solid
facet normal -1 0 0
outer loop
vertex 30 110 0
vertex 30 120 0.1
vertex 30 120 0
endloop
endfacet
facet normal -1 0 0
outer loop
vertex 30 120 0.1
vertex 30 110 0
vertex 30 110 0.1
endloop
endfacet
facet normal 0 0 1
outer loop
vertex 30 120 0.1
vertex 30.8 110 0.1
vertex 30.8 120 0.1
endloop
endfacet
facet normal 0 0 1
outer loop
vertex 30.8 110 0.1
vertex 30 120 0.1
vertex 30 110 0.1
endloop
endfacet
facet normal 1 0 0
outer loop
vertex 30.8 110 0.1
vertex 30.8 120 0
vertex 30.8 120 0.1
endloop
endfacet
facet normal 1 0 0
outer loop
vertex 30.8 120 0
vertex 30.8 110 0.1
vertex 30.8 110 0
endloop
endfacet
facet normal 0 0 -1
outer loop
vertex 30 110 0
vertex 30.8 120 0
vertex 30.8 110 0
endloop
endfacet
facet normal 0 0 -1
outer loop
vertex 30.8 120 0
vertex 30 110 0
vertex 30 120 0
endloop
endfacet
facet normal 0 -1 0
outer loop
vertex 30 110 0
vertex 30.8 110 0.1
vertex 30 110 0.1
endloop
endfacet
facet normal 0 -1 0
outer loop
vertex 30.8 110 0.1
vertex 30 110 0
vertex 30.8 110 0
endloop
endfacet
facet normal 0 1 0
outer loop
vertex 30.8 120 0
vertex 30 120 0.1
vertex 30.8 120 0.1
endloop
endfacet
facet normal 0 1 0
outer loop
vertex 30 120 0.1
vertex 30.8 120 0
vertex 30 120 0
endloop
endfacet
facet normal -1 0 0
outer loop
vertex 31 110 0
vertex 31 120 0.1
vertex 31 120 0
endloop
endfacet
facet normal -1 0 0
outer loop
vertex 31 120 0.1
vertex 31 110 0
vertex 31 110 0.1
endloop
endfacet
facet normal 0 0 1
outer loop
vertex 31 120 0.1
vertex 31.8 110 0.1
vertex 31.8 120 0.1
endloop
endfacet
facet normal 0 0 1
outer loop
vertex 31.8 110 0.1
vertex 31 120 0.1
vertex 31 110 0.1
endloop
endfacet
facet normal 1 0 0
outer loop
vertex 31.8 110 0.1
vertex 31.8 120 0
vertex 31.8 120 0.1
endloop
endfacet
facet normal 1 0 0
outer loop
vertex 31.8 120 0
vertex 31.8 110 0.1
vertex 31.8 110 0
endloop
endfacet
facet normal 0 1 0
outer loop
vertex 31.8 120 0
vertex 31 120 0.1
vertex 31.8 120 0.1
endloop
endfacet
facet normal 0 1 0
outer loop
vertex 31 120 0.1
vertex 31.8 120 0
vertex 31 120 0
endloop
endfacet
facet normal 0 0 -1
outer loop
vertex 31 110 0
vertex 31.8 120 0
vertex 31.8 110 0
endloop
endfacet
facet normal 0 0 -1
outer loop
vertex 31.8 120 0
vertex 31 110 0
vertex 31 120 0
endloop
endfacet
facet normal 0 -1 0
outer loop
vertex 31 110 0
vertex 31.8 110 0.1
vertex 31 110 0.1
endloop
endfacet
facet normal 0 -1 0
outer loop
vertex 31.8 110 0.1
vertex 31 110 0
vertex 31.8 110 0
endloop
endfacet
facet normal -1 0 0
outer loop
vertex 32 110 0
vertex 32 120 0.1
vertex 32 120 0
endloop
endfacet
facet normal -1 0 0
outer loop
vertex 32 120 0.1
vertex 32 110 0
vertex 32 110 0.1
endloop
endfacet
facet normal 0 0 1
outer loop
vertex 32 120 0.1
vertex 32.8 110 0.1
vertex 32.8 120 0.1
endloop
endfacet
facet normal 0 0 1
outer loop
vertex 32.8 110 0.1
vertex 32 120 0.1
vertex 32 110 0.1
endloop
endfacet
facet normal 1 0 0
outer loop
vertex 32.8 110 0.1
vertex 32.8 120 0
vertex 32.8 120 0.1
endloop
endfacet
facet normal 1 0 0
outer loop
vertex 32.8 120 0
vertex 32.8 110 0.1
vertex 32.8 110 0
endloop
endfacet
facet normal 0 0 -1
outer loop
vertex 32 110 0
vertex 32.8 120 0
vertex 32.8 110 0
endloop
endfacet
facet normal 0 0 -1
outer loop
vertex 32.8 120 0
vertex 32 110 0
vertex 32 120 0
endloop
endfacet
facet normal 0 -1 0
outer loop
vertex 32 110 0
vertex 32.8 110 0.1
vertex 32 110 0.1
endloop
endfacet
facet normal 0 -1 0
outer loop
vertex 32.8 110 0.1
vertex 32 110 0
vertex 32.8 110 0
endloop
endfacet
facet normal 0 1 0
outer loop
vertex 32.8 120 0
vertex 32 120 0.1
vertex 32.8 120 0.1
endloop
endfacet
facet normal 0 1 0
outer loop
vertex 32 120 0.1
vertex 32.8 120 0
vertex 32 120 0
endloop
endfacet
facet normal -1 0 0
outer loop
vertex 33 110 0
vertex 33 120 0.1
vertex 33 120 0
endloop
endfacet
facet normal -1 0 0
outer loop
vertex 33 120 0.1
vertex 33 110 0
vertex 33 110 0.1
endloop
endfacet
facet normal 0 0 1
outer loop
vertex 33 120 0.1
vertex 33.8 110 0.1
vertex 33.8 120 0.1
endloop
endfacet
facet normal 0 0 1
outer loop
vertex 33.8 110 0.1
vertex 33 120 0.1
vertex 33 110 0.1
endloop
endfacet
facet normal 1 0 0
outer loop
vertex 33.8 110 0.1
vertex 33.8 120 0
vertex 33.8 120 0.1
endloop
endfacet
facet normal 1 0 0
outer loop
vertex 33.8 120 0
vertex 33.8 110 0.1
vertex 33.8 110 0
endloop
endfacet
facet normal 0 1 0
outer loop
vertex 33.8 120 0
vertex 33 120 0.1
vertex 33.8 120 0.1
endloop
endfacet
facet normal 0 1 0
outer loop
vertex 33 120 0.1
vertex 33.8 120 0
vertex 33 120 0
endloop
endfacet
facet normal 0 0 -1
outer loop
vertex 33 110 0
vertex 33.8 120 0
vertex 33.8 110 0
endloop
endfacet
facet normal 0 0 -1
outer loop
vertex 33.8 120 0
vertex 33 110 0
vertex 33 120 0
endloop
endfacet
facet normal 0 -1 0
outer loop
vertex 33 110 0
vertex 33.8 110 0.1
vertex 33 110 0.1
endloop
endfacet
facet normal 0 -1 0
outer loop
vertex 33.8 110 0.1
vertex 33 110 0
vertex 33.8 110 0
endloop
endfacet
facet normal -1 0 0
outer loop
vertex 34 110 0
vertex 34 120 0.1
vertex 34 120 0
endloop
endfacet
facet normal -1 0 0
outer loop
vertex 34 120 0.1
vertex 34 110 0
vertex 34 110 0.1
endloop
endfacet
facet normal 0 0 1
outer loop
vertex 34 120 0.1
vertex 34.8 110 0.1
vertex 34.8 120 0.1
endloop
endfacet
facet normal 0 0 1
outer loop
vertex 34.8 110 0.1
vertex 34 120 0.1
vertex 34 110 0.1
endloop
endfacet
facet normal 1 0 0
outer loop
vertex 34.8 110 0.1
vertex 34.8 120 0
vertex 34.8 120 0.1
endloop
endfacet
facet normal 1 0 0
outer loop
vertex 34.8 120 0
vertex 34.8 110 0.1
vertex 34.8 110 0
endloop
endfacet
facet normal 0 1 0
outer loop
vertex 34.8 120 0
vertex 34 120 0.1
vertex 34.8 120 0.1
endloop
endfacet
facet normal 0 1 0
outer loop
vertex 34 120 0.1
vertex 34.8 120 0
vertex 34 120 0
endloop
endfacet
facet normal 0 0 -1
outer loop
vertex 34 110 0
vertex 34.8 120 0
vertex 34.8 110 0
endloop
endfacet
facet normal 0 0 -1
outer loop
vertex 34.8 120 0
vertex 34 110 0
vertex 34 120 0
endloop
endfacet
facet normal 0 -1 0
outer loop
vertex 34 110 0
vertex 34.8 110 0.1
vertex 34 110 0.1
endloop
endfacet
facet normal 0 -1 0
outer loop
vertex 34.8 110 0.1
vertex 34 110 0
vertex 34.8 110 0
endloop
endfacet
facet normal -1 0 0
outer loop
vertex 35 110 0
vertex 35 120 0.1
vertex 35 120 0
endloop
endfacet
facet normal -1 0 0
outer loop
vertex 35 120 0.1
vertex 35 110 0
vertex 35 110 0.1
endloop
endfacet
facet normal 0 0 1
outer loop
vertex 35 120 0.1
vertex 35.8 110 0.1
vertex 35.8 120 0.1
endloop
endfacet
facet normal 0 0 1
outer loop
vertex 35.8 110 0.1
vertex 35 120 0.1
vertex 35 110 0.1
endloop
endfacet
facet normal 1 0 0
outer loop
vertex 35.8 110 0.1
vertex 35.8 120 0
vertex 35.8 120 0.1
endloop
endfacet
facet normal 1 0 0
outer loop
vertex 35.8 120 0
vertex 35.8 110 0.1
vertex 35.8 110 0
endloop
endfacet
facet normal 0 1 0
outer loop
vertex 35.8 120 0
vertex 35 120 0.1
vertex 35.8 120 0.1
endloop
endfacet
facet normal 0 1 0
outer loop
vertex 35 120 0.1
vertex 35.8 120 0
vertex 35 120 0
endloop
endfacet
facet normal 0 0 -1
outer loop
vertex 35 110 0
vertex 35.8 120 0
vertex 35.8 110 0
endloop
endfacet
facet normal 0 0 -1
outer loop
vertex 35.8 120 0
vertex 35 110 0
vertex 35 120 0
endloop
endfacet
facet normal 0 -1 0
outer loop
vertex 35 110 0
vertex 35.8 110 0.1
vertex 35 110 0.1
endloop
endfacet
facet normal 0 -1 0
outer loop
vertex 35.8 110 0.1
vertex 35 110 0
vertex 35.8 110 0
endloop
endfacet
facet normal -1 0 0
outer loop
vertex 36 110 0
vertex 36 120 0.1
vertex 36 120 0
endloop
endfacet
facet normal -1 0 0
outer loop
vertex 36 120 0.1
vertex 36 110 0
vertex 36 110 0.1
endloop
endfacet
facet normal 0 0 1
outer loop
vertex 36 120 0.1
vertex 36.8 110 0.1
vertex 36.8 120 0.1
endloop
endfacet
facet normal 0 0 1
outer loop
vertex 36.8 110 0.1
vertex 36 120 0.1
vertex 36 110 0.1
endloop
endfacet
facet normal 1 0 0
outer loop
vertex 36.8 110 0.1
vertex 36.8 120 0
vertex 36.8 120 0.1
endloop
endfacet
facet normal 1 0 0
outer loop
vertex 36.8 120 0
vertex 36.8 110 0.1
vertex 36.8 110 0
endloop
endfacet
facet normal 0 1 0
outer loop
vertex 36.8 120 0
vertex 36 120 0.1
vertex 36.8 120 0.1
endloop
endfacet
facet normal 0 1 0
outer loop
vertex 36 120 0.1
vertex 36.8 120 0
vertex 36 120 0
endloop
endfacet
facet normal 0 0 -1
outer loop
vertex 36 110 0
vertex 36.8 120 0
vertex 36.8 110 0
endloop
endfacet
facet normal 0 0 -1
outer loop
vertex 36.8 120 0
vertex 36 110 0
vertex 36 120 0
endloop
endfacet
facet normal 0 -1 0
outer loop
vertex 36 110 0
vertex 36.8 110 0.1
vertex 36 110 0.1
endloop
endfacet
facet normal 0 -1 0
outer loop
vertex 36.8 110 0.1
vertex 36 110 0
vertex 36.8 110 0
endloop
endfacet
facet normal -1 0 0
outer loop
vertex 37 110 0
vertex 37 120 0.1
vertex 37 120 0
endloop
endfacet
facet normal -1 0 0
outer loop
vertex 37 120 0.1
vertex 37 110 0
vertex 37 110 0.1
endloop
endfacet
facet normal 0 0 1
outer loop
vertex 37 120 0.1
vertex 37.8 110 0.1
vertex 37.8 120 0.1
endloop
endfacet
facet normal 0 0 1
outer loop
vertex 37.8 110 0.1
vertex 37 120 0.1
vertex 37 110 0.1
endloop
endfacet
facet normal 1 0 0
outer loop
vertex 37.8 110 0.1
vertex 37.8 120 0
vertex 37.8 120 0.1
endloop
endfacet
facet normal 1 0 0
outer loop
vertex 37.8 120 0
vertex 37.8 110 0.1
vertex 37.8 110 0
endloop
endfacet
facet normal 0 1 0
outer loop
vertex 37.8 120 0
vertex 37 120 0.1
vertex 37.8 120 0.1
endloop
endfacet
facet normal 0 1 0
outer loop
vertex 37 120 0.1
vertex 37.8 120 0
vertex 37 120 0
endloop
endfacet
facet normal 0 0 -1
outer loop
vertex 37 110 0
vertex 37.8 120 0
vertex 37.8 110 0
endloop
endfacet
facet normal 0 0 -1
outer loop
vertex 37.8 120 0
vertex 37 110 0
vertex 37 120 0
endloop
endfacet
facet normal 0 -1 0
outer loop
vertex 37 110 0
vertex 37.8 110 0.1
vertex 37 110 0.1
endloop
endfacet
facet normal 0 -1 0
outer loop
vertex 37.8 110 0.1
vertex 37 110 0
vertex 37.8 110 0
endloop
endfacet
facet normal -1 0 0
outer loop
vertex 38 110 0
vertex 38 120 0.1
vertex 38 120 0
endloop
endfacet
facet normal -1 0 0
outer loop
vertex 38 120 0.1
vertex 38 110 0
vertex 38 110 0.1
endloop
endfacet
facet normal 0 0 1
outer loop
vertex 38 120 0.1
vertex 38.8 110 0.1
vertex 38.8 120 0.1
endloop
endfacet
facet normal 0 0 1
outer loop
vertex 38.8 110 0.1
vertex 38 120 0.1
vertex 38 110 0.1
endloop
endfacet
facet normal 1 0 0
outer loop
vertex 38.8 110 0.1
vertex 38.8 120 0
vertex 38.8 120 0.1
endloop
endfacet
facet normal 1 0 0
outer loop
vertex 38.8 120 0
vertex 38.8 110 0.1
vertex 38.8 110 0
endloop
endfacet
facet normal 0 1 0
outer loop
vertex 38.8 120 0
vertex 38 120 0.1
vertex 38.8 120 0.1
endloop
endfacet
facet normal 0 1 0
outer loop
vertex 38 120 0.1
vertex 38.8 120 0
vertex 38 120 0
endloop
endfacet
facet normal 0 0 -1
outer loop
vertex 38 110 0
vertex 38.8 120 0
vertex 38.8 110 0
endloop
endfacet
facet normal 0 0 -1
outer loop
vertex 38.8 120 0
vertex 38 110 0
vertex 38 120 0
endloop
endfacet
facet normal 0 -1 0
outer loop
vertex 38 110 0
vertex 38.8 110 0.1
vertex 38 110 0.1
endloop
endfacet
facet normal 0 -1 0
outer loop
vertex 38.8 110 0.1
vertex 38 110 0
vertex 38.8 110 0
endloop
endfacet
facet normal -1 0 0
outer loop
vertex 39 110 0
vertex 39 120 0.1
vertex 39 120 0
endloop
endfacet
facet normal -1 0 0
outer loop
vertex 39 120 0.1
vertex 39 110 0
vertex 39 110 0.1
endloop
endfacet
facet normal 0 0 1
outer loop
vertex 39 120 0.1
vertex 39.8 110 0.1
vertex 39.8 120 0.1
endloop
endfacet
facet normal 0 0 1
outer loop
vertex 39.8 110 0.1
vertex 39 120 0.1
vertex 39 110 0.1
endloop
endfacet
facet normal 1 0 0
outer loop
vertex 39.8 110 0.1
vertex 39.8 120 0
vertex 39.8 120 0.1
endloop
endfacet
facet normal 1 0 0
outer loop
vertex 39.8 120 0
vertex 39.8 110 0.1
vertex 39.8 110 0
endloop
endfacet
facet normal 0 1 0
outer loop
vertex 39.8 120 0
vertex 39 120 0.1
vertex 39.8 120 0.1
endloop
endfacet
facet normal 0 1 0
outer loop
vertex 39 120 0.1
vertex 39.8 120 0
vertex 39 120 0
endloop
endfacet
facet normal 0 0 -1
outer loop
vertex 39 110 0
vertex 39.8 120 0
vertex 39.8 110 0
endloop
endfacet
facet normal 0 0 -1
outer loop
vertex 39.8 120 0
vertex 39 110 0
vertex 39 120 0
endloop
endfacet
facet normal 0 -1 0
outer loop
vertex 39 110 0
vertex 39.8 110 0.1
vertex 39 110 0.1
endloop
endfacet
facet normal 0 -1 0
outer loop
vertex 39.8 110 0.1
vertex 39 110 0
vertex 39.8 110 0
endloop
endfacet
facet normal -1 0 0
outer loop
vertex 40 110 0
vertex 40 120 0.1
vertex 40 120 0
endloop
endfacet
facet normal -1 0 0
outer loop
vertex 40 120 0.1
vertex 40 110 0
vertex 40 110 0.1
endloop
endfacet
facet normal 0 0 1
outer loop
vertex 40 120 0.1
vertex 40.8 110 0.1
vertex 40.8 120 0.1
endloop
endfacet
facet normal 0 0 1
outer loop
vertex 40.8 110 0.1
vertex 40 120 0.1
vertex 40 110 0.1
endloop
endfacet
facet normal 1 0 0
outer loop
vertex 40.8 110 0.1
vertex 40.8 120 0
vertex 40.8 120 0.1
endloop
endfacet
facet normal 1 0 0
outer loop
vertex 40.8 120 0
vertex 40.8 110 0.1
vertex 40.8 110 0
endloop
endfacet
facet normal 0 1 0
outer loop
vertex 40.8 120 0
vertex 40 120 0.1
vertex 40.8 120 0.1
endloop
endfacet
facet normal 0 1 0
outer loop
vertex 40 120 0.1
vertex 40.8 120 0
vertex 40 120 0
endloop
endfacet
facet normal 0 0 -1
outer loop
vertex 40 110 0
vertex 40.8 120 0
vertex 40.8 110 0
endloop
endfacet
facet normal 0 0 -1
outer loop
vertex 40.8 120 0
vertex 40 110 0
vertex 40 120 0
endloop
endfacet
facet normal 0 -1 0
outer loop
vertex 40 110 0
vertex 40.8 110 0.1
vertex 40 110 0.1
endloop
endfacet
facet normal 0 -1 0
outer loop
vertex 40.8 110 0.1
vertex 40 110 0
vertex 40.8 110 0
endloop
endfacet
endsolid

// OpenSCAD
translate([10+20,10+100,0])
        for (i = [0 : 10]){
            translate([i,0,0])
                cube(size = [0.8,10,0.1]);
    }
